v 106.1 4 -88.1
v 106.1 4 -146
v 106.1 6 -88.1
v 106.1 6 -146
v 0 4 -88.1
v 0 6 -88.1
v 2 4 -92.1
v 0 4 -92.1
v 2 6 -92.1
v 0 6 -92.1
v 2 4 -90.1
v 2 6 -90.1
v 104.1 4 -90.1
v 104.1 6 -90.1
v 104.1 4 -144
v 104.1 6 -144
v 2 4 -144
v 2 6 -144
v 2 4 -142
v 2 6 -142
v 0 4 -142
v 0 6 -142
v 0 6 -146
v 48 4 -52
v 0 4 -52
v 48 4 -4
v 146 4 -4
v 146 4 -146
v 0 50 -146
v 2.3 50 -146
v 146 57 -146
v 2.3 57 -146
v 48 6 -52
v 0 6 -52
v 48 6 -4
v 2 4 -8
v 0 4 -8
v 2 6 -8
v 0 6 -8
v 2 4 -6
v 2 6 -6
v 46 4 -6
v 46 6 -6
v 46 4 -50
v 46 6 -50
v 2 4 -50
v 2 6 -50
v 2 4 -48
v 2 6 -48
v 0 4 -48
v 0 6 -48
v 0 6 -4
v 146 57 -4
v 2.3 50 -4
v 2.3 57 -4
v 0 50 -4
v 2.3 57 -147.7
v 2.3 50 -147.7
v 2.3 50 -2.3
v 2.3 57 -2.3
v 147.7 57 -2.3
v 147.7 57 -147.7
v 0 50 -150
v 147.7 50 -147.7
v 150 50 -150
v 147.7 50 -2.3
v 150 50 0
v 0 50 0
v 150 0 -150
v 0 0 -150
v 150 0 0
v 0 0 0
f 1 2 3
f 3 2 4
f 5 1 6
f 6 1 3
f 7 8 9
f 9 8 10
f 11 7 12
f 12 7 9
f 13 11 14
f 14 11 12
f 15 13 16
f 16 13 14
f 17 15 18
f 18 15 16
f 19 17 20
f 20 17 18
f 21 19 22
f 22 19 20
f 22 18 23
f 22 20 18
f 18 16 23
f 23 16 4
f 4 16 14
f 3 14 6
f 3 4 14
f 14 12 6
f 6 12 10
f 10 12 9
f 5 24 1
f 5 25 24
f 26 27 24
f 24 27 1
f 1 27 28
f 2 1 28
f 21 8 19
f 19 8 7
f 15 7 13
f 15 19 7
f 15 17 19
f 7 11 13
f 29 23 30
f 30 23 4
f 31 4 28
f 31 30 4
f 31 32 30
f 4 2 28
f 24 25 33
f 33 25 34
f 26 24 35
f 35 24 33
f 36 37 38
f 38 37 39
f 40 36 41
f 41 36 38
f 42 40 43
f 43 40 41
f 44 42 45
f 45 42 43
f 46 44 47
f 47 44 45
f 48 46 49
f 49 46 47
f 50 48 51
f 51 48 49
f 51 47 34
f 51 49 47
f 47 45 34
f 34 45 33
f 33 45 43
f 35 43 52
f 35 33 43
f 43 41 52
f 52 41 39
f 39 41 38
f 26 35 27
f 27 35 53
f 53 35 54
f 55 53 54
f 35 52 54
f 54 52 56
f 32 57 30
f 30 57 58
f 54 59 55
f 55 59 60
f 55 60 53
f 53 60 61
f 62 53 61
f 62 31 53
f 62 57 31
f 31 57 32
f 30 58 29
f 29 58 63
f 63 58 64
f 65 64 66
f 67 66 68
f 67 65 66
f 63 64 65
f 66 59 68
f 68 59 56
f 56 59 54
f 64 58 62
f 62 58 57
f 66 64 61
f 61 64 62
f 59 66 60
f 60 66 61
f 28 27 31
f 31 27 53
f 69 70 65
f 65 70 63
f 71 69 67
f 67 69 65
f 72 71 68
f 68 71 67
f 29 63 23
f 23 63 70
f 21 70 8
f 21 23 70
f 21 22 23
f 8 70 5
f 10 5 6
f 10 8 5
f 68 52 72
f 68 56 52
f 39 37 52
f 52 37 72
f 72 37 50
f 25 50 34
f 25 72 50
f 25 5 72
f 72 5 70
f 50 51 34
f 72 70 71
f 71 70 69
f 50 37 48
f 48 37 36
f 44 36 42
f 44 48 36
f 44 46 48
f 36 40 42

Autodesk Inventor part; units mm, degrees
ref_plane "YZ Plane" through (0, 0, 0) normal (1, 0, 0) x (0, 1, 0)
ref_plane "XZ Plane" through (0, 0, 0) normal (0, 1, 0) x (-1, 0, 0)
ref_plane "XY Plane" through (0, 0, 0) normal (0, 0, 1) x (1, 0, 0)
sketch "Boceto1" plane through (0, 0, 0) normal (0, 1, 0) x (-1, 0, 0)
  line L0 (0, 0) -> (0, -150)
  line L1 (0, -150) -> (-150, -150)
  line L2 (-150, -150) -> (-150, 0)
  line L3 (-150, 0) -> (0, 0)
extrude "Extrusión1" add sketch "Boceto1" along normal blind 4
sketch "Boceto2" plane through (0, 4, 0) normal (0, 1, 0) x (1, 0, 0)
  line L0 (0, 150) -> (4, 150)
  line L1 (150, 150) -> (0, 150) projected
  line L2 (0, 150) -> (0, 0)
  line L3 (0, 0) -> (150, 0)
  line L4 (150, 0) -> (150, 150)
  line L5 (0, 150) -> (150, 150)
  line L6 (4, 4) -> (146, 4)
  line L7 (146, 146) -> (146, 4)
  line L8 (146, 146) -> (4, 146)
  line L9 (4, 4) -> (4, 146)
extrude "Extrusión2" add sketch "Boceto2" along normal blind 46
sketch "Boceto3" plane through (0, 0, 0) normal (0, 0, 1) x (1, 0, 0)
  point P0 (0, 0)
sketch "Boceto4" plane through (0, 50, 0) normal (0, 1, 0) x (1, 0, 0)
  line L0 (4, 146) -> (146, 146) projected
  line L1 (0, 0) -> (0, 150) projected
  line L2 (146, 4) -> (4, 4) projected
  line L3 (2.3, 4) -> (2.3, 147.7)
  line L4 (2.3, 4) -> (2.3, 2.3)
  line L5 (2.3, 2.3) -> (147.7, 2.3)
  line L6 (147.7, 147.7) -> (2.3, 147.7)
  line L7 (147.7, 147.7) -> (147.7, 2.3)
  line L8 (4, 146) -> (146, 146)
  line L9 (146, 146) -> (146, 4) projected
  line L10 (146, 4) -> (146, 146)
  line L11 (4, 146) -> (4, 4)
  line L12 (4, 4) -> (146, 4)
extrude "Extrusión3" add sketch "Boceto4" along normal blind 7
sketch "Boceto5" plane through (0, 0, -150) normal (-1, 0, 0) x (0, 0, 1)
  point P0 (150, 0)
sketch "Boceto6" plane through (0, 0, -150) normal (-1, 0, 0) x (0, 0, 1)
  line L0 (0, 0) -> (0, 50) projected
  line L1 (0, 50) -> (4, 50)
  line L2 (0, 50) -> (150, 50) projected
  line L3 (146, 4) -> (4, 4) projected
  line L4 (4, 4) -> (4, 50)
  line L5 (4, 4) -> (146, 4)
  line L6 (146, 4) -> (146, 57) projected
  line L7 (146, 4) -> (146, 50)
  line L8 (146, 50) -> (4, 50)
  line L9 (147.7, 50) -> (2.3, 50) projected
  point P0 (150, 0)
extrude "Extrusión4" cut sketch "Boceto6" against normal blind 4
sketch "Boceto7" plane through (2.3, 50, -2.3) normal (-1, 0, 0) x (0, 0, 1)
  line L0 (-1.7, -46) -> (-1.7, 7) projected
  line L1 (-1.7, 0) -> (-1.7, 7)
  line L2 (-143.7, -46) -> (-143.7, 7) projected
  line L3 (-1.7, 7) -> (-143.7, 7)
  line L4 (-143.7, 7) -> (-143.7, 0)
  line L5 (2.3, 0) -> (-147.7, 0) projected
  line L6 (-143.7, 0) -> (-1.7, 0)
  point P0 (2.3, -50)
extrude "Extrusión5" cut sketch "Boceto7" against normal blind 4
sketch "Boceto8" plane through (0, 4, 0) normal (0, 1, 0) x (1, 0, 0)
  line L0 (0, 88.1) -> (106.1, 88.1)
  line L1 (106.1, 88.1) -> (106.1, 146)
  line L2 (0, 4) -> (0, 146) projected
  line L3 (0, 88.1) -> (0, 90.1)
  line L4 (2, 90.1) -> (104.1, 90.1)
  line L5 (106.1, 88.1) -> (104.1, 88.1)
  line L6 (104.1, 90.1) -> (104.1, 144)
  line L7 (106.1, 146) -> (106.1, 144)
  line L8 (104.1, 144) -> (2, 144)
  line L9 (0, 146) -> (106.1, 146)
  line L10 (2, 144) -> (2, 142)
  line L11 (2, 142) -> (0, 142)
  line L12 (2, 90.1) -> (2, 92.1)
  line L13 (2, 92.1) -> (0, 92.1)
  line L14 (0, 146) -> (0, 142)
  line L15 (0, 92.1) -> (0, 88.1)
  line L16 (2, 144) -> (2, 142)
  line L17 (2, 92.1) -> (2, 90.1)
  line L18 (0, 52) -> (48, 52)
  line L19 (48, 52) -> (48, 4)
  line L20 (0, 4) -> (146, 4) projected
  line L21 (2.3, 4) -> (0, 4) projected
  line L22 (0, 4) -> (48, 4)
  line L23 (2.3, 2.3) -> (147.7, 2.3) projected
  line L24 (0, 52) -> (0, 50)
  line L25 (2, 50) -> (46, 50)
  line L26 (46, 50) -> (46, 6)
  line L27 (46, 6) -> (2, 6)
  line L28 (0, 4) -> (48, 4)
  line L29 (0, 4) -> (48, 4)
  line L30 (2, 6) -> (2, 8)
  line L31 (2, 8) -> (0, 8)
  line L32 (2, 50) -> (2, 48)
  line L33 (2, 48) -> (0, 48)
  line L34 (2, 6) -> (2, 8)
  line L35 (2, 48) -> (2, 50)
  line L36 (0, 4) -> (0, 8)
  line L37 (0, 48) -> (0, 52)
  line L38 (0, 142) -> (0, 146)
  line L39 (0, 146) -> (106.1, 146)
  line L40 (2.3, 146) -> (146, 146) projected
  line L41 (106.1, 146) -> (106.1, 88.1)
  line L42 (106.1, 88.1) -> (0, 88.1)
  line L43 (0, 88.1) -> (0, 92.1)
  line L44 (0, 92.1) -> (2, 92.1)
  line L45 (2, 92.1) -> (2, 90.1)
  line L46 (2, 90.1) -> (104.1, 90.1)
  line L47 (104.1, 90.1) -> (104.1, 144)
  line L48 (104.1, 144) -> (2, 144)
  line L49 (2, 144) -> (2, 142)
  line L50 (2, 142) -> (0, 142)
  line L51 (0, 146) -> (2.3, 146) projected
  line L52 (0, 142) -> (0, 146)
  point P0 (0, 0)
extrude "Extrusión6" add sketch "Boceto8" along normal blind 2 contours L18 L19 L20 L2 L31 L30 L27 L26 L25 L32 L33
sketch "Boceto9" plane through (0, 4, 0) normal (0, 1, 0) x (1, 0, 0)
  line L0 (0, 88.1) -> (106.1, 88.1)
  line L1 (106.1, 88.1) -> (106.1, 146)
  line L2 (0, 88.1) -> (0, 90.1)
  line L3 (2, 90.1) -> (104.1, 90.1)
  line L4 (106.1, 88.1) -> (104.1, 88.1)
  line L5 (104.1, 90.1) -> (104.1, 144)
  line L6 (106.1, 146) -> (106.1, 144)
  line L7 (104.1, 144) -> (2, 144)
  line L8 (0, 146) -> (106.1, 146)
  line L9 (2, 144) -> (2, 142)
  line L10 (2, 142) -> (0, 142)
  line L11 (2, 90.1) -> (2, 92.1)
  line L12 (2, 92.1) -> (0, 92.1)
  line L13 (0, 146) -> (0, 142)
  line L14 (0, 92.1) -> (0, 88.1)
  line L15 (2, 144) -> (2, 142)
  line L16 (2, 92.1) -> (2, 90.1)
  line L17 (0, 142) -> (0, 146)
  line L18 (0, 146) -> (106.1, 146)
  line L19 (106.1, 146) -> (106.1, 88.1)
  line L20 (106.1, 88.1) -> (0, 88.1)
  line L21 (0, 88.1) -> (0, 92.1)
  line L22 (0, 92.1) -> (2, 92.1)
  line L23 (2, 92.1) -> (2, 90.1)
  line L24 (2, 90.1) -> (104.1, 90.1)
  line L25 (104.1, 90.1) -> (104.1, 144)
  line L26 (104.1, 144) -> (2, 144)
  line L27 (2, 144) -> (2, 142)
  line L28 (2, 142) -> (0, 142)
  line L29 (0, 146) -> (2.3, 146)
  line L30 (0, 142) -> (0, 146)
  point P0 (0, 0)
  point P1 (0, 52)
extrude "Extrusión7" add sketch "Boceto9" along normal blind 2
properties part number "base inf"
